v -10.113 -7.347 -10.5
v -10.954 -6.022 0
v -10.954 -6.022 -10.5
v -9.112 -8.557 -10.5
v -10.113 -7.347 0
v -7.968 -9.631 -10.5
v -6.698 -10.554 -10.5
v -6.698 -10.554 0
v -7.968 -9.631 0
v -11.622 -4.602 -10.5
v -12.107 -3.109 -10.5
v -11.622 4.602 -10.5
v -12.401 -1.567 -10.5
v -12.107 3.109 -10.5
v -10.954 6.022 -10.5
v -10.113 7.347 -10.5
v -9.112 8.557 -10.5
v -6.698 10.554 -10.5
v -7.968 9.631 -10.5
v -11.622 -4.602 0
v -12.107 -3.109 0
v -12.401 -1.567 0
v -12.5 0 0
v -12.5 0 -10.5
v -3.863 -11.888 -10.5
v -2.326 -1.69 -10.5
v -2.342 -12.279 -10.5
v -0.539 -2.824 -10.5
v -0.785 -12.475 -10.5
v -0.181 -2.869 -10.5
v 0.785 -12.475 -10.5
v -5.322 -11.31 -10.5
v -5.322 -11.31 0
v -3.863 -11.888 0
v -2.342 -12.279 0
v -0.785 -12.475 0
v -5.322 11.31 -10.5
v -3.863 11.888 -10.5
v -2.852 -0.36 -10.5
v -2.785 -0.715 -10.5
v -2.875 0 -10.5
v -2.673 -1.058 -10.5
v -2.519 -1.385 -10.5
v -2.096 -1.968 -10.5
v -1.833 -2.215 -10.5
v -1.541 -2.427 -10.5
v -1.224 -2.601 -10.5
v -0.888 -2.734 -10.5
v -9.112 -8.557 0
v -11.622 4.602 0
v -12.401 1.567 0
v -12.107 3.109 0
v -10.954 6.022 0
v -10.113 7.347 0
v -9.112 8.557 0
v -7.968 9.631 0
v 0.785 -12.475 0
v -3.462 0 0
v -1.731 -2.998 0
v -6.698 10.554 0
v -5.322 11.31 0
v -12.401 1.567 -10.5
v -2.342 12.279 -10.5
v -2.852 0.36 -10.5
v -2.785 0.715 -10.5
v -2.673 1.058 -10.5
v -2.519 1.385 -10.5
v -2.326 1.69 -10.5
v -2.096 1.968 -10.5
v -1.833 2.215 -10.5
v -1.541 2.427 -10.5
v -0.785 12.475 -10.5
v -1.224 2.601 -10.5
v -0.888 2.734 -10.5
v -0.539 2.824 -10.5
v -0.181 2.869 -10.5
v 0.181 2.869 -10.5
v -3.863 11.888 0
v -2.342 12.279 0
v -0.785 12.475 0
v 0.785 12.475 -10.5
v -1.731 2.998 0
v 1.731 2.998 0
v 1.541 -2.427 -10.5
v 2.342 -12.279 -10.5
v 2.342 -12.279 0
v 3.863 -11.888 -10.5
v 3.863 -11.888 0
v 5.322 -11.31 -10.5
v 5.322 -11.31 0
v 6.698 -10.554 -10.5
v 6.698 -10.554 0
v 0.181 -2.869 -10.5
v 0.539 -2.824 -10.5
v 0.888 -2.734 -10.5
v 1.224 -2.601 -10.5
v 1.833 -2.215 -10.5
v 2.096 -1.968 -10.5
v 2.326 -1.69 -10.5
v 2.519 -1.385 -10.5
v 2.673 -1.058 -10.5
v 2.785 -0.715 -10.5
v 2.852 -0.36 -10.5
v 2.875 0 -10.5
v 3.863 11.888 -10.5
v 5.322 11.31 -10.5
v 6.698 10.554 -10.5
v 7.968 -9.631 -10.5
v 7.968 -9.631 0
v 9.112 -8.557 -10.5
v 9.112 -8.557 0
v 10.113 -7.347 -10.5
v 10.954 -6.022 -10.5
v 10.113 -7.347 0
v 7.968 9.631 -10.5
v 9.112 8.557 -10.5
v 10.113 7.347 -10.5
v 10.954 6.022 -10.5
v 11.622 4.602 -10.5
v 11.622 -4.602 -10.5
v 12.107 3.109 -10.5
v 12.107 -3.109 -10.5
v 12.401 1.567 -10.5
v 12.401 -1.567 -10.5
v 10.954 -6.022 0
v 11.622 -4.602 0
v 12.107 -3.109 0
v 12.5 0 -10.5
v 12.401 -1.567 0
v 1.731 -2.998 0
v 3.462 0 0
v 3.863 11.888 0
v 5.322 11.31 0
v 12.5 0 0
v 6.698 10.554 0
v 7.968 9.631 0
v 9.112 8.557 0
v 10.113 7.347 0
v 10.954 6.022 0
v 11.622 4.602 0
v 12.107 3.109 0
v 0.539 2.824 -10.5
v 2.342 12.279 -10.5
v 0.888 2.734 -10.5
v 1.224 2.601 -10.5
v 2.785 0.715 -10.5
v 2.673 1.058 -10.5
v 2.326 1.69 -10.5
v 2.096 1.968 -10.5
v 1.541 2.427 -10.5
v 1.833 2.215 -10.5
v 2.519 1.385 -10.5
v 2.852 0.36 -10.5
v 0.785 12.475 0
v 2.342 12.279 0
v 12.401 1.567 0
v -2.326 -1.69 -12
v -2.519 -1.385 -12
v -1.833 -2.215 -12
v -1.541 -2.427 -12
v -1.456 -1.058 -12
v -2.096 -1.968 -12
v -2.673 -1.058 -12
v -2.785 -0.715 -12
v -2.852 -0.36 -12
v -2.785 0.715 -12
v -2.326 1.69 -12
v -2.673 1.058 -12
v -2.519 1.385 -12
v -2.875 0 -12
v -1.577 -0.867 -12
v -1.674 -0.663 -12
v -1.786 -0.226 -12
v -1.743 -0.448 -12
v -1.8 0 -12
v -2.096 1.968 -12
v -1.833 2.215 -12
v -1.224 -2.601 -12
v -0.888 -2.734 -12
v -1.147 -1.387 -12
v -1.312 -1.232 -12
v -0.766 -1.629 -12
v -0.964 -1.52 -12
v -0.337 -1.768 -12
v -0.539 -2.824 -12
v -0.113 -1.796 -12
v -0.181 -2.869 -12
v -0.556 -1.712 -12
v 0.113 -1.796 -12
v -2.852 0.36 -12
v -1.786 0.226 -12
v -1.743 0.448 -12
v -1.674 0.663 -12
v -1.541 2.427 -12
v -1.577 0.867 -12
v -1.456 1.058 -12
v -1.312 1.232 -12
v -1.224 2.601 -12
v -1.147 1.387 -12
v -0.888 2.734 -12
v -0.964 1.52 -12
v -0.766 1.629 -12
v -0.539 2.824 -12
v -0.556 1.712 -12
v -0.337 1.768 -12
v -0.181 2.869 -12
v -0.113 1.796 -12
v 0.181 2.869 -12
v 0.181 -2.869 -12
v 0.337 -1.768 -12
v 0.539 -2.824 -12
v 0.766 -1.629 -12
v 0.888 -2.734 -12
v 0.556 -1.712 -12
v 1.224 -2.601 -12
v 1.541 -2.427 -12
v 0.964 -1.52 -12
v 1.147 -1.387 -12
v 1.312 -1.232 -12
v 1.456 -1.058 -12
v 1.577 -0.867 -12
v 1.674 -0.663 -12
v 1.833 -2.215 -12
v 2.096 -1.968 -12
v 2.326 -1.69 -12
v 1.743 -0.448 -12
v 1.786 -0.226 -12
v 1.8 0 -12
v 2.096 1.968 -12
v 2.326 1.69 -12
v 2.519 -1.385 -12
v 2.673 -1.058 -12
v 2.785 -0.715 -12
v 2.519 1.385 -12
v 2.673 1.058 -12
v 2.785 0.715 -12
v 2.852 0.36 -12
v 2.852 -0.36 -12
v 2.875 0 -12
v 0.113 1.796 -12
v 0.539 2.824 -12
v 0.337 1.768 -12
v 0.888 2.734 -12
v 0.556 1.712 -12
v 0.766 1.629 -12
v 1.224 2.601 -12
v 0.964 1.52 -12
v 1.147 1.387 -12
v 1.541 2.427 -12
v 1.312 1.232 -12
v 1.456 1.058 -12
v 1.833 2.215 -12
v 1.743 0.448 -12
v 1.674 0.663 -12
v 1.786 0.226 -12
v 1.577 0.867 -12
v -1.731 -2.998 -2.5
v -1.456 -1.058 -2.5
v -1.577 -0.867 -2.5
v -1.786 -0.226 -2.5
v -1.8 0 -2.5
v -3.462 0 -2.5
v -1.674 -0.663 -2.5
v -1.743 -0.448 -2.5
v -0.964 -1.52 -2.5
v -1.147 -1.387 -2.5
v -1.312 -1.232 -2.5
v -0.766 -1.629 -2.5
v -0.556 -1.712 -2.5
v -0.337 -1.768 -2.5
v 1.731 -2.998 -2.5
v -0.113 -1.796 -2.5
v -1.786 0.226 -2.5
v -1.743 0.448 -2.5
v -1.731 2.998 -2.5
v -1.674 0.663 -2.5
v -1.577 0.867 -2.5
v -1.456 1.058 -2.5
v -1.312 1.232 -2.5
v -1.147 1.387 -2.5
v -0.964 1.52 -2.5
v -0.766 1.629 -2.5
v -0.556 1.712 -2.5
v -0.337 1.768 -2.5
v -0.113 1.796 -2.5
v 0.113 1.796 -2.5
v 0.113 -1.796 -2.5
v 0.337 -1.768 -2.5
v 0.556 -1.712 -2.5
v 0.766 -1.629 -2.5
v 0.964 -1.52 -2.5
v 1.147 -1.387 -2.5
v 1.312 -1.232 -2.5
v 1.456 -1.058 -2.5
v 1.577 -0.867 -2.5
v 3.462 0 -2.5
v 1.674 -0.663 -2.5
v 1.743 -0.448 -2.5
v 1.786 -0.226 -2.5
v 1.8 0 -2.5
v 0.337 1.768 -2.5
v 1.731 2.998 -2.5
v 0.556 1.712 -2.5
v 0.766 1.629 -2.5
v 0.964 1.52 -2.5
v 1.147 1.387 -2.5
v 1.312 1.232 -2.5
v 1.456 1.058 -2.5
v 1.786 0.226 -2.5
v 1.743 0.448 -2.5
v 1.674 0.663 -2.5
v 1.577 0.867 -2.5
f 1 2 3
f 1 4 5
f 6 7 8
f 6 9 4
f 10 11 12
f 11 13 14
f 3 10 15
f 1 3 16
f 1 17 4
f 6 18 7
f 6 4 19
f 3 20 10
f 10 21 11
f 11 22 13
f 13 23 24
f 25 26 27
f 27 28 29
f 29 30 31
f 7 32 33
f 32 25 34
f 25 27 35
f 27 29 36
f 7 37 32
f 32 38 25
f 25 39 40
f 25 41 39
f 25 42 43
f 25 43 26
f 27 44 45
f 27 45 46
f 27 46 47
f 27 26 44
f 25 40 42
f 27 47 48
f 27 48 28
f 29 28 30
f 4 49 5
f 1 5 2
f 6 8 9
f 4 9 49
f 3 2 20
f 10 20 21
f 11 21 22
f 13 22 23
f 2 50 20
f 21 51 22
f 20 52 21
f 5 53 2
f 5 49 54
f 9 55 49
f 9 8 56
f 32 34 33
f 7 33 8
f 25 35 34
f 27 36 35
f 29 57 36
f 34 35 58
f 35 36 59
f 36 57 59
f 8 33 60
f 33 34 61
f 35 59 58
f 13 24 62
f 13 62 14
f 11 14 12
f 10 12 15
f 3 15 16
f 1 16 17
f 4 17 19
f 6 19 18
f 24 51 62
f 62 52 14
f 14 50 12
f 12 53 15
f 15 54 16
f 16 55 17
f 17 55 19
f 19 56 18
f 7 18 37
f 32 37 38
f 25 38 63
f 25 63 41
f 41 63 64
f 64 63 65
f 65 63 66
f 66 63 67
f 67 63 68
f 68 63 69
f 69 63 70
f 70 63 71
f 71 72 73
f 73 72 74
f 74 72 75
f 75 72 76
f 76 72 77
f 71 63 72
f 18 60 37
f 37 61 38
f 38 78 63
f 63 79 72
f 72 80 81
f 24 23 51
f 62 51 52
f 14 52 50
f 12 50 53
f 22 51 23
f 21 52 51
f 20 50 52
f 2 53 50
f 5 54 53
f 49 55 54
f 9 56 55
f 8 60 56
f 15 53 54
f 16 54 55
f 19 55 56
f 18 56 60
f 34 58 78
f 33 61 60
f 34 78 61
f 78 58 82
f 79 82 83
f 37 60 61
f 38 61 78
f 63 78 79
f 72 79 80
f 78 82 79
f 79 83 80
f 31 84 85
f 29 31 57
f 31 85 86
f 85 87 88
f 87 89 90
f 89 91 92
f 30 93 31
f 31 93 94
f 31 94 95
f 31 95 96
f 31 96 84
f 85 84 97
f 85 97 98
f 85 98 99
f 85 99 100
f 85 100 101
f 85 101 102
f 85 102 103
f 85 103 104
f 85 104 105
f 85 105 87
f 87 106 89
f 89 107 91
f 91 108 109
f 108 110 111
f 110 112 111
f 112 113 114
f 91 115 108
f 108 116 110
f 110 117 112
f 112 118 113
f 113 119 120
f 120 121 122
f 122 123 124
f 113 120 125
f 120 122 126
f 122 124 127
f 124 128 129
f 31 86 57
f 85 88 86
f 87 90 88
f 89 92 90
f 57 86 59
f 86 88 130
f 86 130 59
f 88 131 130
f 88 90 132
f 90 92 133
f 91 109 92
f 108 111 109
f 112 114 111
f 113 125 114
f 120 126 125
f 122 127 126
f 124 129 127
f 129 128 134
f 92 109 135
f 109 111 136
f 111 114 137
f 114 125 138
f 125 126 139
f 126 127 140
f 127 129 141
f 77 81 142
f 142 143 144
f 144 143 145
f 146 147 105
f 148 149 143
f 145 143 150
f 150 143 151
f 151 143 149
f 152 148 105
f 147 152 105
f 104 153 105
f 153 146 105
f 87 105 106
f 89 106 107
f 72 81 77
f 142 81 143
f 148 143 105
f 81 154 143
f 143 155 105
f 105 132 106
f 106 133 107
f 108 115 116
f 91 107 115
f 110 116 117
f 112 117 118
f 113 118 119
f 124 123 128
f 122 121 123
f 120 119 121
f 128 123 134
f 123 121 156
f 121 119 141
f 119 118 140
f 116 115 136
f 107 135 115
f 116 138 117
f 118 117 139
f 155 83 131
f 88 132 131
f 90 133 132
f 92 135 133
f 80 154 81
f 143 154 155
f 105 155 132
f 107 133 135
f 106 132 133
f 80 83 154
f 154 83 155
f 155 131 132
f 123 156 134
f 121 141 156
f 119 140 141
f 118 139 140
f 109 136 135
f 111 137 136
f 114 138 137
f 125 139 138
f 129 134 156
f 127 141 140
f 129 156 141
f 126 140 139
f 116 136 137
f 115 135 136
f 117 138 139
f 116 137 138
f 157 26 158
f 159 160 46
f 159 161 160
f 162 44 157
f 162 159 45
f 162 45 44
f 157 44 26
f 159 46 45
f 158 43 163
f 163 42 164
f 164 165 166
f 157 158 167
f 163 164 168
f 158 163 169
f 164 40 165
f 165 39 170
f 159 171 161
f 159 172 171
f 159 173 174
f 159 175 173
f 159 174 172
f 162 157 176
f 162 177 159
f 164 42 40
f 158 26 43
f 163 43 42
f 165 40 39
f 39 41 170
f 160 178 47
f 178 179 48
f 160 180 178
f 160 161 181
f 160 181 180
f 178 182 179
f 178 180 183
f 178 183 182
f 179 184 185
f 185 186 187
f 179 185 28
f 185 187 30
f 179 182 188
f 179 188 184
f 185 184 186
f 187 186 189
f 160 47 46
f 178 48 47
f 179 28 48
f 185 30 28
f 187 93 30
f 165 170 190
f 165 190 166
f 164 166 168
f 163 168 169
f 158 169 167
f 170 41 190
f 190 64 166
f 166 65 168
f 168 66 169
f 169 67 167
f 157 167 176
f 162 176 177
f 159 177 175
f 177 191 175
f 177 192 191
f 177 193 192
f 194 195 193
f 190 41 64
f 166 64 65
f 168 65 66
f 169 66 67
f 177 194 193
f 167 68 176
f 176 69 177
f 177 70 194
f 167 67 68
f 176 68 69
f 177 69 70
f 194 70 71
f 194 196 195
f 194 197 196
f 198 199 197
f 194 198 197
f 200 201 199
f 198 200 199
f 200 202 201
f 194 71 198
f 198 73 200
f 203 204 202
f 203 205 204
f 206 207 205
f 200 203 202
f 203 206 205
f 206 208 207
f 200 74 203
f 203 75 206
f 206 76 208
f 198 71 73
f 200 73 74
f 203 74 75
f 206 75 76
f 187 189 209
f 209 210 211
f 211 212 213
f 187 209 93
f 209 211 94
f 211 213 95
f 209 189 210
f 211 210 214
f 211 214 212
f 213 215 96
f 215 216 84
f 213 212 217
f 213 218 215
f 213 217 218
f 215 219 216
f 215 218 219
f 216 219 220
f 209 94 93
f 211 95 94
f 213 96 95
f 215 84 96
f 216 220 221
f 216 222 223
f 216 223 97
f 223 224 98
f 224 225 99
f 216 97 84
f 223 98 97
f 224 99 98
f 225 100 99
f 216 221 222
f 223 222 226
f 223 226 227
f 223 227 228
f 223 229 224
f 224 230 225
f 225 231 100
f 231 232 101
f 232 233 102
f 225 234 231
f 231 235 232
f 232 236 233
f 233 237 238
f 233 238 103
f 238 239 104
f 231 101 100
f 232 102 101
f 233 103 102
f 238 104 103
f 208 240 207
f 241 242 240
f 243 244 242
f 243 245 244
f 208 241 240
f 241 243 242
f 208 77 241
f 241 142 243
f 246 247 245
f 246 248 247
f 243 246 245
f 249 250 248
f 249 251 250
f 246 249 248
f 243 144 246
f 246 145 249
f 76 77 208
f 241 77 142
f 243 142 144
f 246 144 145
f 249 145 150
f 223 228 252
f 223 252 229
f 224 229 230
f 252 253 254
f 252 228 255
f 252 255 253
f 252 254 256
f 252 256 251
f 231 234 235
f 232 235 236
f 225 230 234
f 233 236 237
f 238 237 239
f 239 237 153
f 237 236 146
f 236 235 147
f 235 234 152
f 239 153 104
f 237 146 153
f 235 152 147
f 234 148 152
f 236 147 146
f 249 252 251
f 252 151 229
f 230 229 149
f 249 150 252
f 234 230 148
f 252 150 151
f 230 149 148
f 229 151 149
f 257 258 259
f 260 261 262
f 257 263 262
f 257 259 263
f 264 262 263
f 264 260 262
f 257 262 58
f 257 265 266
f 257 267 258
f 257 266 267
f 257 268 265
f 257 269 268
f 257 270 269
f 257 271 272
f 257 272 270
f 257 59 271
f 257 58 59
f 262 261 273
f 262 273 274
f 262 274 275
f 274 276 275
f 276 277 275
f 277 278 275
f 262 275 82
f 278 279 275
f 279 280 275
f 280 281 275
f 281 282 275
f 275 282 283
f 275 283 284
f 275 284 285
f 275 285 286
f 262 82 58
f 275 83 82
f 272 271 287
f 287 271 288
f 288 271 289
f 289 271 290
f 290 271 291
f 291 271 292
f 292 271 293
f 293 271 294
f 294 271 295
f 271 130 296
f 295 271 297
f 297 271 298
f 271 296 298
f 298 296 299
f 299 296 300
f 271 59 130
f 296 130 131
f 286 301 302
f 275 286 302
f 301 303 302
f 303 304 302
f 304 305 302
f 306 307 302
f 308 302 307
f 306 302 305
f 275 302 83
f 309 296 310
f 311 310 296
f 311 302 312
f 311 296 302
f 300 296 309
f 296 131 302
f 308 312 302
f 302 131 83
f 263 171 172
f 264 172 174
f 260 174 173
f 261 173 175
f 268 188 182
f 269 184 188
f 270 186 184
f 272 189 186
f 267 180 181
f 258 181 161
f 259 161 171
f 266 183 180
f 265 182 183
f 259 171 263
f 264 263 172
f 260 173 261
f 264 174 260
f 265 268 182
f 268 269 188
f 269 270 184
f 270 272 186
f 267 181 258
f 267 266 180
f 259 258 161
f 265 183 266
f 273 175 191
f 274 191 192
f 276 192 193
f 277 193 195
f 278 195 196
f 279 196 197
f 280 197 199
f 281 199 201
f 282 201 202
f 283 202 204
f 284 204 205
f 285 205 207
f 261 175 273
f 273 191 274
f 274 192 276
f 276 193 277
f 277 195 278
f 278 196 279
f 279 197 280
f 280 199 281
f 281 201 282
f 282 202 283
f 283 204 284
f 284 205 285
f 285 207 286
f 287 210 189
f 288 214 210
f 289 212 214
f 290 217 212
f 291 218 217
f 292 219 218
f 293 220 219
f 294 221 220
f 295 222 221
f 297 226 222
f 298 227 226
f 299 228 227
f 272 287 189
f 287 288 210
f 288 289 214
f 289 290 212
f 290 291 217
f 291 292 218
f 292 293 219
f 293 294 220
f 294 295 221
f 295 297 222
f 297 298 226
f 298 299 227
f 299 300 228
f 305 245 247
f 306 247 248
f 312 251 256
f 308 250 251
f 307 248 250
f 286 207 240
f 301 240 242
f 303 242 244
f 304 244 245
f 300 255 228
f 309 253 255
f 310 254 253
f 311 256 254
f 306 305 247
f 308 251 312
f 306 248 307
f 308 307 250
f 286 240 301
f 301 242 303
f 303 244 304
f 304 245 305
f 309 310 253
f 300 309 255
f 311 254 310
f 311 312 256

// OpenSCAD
$fn = 50;

difference() {
	union() {
		translate(v = [0, 0, -10.5]) {
			cylinder(h = 10.5, r = 12.5);
		}
		#translate(v = [0, 0, -12.0]) {
			cylinder(h = 12, r = 2.875);
		}
	}
	union() {
		translate(v = [0, 0, 0]) {
			rotate(a = [0, 0, 0]) {
				difference() {
					union() {
						translate(v = [0, 0, -2.5]) {
							linear_extrude(height = 2.5) {
								polygon(points = [[3.4619999999999997, 0.0], [1.7310000000000003, 2.9981799479017264], [-1.7309999999999992, 2.9981799479017264], [-3.4619999999999997, 4.2397272186481365e-16], [-1.7310000000000014, -2.998179947901726], [1.7309999999999977, -2.9981799479017277]]);
							}
						}
					}
					union();
				}
			}
		}
		#translate(v = [0, 0, -100.0]) {
			cylinder(h = 200, r = 1.8);
		}
	}
}
